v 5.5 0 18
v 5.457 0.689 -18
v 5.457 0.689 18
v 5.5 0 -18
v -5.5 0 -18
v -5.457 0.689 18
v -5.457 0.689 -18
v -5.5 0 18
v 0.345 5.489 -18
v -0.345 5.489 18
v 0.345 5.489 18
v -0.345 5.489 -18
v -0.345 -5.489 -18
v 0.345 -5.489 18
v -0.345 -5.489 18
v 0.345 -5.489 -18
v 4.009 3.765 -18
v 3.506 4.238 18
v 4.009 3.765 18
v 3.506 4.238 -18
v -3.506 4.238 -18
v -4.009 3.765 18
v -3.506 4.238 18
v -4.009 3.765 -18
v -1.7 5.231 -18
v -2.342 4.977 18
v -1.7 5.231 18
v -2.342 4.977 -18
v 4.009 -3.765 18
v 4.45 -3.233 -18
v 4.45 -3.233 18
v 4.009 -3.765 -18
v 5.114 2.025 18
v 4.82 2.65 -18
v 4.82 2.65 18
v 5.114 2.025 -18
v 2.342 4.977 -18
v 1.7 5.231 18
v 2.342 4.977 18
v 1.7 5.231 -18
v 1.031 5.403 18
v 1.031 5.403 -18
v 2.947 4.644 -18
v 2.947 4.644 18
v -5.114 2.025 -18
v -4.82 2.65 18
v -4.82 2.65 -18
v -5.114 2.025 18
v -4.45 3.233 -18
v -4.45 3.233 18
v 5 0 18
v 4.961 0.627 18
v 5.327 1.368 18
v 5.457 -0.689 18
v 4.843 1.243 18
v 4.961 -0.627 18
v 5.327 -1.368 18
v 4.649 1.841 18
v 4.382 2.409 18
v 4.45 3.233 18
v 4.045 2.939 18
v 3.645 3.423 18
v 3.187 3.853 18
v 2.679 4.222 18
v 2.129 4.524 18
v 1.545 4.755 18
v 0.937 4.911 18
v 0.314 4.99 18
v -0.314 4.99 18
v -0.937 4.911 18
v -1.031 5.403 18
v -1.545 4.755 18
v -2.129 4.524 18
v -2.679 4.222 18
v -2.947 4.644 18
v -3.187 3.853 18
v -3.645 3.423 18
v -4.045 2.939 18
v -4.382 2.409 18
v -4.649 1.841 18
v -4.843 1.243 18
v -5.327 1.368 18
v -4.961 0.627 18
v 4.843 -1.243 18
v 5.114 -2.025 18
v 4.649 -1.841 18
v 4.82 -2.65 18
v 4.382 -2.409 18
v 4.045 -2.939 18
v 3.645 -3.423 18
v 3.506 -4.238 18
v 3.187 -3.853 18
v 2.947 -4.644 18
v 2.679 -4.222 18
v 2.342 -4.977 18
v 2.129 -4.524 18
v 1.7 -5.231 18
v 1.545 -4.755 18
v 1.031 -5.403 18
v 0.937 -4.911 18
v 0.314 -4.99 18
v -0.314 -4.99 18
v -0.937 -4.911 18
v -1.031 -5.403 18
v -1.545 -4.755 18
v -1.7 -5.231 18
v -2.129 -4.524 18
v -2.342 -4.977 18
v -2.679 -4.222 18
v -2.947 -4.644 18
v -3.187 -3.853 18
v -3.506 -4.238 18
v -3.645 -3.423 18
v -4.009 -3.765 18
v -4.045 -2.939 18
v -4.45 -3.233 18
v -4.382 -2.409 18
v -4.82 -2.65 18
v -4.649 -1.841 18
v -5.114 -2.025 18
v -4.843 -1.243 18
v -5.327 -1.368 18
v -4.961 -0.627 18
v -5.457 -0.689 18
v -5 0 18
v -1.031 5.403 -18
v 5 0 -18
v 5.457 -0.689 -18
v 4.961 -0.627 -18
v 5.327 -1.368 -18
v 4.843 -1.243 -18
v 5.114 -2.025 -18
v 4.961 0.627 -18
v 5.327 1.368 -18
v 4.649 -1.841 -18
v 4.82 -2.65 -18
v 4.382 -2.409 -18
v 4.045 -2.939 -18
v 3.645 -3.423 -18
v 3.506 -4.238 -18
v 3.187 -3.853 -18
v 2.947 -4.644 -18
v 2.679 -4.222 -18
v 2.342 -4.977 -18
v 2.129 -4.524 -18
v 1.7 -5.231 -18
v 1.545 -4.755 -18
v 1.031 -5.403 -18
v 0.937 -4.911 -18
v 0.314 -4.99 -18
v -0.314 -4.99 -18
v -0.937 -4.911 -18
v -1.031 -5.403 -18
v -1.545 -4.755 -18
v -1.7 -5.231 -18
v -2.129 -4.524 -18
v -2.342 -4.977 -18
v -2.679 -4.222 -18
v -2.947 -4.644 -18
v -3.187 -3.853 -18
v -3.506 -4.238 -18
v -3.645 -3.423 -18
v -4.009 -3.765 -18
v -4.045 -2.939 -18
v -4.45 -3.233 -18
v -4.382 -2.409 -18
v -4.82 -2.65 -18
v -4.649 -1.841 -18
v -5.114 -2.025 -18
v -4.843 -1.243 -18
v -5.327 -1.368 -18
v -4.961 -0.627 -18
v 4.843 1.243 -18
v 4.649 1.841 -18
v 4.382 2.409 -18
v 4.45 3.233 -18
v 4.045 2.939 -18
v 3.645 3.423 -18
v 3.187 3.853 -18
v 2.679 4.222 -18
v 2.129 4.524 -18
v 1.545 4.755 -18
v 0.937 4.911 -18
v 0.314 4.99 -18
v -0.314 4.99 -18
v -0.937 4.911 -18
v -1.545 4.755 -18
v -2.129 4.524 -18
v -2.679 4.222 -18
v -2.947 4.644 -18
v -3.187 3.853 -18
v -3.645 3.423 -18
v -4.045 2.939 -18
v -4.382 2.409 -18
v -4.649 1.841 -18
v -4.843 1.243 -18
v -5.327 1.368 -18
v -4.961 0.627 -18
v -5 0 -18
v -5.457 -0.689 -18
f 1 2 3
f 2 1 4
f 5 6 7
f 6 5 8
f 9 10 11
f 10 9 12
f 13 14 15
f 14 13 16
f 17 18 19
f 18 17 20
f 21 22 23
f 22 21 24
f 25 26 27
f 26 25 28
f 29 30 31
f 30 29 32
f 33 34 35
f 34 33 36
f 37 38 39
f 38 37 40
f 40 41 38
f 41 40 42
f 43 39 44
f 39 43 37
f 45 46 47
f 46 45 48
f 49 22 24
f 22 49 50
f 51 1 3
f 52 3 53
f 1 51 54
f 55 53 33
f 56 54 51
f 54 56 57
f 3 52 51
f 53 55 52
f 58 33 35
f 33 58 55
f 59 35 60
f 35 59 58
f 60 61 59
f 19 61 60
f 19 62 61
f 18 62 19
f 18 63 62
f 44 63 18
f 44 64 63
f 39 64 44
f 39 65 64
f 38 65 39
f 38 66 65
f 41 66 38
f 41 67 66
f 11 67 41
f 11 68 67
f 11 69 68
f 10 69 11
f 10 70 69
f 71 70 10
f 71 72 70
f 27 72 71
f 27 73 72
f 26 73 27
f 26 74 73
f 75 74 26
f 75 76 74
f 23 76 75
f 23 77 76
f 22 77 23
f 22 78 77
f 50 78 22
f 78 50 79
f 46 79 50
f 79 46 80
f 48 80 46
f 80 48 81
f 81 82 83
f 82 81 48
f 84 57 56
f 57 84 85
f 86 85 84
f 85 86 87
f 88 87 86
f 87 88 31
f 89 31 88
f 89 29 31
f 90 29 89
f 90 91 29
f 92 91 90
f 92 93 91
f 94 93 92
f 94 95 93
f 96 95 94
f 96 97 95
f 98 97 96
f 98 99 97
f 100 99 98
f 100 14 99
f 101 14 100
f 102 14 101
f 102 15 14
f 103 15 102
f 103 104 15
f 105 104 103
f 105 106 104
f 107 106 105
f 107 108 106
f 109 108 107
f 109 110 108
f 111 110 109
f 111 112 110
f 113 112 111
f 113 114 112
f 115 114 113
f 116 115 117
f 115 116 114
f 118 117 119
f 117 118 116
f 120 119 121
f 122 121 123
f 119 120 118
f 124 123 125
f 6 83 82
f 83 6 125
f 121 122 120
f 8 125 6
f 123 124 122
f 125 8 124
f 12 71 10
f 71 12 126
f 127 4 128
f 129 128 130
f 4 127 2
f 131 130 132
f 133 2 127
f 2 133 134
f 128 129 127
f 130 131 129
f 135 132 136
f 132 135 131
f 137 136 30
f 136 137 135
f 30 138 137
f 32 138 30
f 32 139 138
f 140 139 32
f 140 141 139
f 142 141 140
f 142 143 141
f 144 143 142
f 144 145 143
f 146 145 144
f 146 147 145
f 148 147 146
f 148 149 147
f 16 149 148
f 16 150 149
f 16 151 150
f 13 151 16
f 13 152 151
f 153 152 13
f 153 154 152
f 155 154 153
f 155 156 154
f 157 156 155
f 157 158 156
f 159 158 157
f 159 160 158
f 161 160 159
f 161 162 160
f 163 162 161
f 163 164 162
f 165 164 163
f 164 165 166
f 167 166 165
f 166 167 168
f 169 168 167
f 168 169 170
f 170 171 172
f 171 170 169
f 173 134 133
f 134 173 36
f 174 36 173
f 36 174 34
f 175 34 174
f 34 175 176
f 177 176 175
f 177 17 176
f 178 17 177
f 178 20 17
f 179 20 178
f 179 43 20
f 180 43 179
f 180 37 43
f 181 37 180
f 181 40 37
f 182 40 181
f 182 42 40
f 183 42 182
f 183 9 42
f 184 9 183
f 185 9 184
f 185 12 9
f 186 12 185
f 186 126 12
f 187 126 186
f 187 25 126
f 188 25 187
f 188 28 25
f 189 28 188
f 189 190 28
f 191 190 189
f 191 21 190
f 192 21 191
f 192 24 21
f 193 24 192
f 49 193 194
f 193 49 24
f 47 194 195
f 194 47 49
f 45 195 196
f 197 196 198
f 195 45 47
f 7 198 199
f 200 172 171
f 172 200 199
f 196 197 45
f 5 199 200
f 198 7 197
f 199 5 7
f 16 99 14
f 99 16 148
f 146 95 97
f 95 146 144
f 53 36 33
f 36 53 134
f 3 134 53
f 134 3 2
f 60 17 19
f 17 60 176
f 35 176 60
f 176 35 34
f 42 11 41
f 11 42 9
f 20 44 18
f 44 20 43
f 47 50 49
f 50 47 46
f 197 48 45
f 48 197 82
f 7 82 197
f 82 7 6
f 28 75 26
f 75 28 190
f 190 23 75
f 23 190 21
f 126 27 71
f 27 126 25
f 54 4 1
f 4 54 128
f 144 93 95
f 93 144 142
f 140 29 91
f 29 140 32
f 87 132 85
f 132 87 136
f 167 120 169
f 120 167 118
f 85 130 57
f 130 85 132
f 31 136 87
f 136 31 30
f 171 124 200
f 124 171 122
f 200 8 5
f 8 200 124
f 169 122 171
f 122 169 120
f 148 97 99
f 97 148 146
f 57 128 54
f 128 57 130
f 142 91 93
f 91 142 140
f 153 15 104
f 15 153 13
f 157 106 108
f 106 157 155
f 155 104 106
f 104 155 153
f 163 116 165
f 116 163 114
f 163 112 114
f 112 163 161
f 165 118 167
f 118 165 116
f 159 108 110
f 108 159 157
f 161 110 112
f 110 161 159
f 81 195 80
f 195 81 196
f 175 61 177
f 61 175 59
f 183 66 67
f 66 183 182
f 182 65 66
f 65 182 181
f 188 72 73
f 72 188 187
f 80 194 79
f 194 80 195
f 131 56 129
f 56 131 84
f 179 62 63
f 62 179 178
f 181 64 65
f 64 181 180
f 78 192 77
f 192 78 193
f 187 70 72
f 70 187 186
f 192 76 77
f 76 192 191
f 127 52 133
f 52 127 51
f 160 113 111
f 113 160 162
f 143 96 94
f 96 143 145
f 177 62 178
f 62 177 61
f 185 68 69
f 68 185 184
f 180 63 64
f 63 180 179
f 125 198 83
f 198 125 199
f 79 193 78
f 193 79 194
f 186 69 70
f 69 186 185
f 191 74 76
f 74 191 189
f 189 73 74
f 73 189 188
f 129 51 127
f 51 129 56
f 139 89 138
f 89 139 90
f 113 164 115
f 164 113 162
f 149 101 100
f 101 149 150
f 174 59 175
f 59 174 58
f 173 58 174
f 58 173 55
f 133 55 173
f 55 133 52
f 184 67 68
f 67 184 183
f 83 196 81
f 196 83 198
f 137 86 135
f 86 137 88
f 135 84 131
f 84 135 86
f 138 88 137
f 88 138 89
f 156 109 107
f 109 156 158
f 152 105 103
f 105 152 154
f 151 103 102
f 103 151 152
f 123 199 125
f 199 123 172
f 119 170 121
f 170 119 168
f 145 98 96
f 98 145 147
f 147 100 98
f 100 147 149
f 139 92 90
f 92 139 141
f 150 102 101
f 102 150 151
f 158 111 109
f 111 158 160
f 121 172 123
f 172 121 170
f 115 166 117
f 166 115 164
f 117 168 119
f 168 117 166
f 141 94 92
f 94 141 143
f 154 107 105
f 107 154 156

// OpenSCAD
$fn = 50;


difference() {
	union() {
		translate(v = [0, 0, -18.0000000000]) {
			cylinder(h = 36, r = 5.5000000000);
		}
	}
	union() {
		translate(v = [0, 0, -100.0000000000]) {
			cylinder(h = 200, r = 5);
		}
	}
}
